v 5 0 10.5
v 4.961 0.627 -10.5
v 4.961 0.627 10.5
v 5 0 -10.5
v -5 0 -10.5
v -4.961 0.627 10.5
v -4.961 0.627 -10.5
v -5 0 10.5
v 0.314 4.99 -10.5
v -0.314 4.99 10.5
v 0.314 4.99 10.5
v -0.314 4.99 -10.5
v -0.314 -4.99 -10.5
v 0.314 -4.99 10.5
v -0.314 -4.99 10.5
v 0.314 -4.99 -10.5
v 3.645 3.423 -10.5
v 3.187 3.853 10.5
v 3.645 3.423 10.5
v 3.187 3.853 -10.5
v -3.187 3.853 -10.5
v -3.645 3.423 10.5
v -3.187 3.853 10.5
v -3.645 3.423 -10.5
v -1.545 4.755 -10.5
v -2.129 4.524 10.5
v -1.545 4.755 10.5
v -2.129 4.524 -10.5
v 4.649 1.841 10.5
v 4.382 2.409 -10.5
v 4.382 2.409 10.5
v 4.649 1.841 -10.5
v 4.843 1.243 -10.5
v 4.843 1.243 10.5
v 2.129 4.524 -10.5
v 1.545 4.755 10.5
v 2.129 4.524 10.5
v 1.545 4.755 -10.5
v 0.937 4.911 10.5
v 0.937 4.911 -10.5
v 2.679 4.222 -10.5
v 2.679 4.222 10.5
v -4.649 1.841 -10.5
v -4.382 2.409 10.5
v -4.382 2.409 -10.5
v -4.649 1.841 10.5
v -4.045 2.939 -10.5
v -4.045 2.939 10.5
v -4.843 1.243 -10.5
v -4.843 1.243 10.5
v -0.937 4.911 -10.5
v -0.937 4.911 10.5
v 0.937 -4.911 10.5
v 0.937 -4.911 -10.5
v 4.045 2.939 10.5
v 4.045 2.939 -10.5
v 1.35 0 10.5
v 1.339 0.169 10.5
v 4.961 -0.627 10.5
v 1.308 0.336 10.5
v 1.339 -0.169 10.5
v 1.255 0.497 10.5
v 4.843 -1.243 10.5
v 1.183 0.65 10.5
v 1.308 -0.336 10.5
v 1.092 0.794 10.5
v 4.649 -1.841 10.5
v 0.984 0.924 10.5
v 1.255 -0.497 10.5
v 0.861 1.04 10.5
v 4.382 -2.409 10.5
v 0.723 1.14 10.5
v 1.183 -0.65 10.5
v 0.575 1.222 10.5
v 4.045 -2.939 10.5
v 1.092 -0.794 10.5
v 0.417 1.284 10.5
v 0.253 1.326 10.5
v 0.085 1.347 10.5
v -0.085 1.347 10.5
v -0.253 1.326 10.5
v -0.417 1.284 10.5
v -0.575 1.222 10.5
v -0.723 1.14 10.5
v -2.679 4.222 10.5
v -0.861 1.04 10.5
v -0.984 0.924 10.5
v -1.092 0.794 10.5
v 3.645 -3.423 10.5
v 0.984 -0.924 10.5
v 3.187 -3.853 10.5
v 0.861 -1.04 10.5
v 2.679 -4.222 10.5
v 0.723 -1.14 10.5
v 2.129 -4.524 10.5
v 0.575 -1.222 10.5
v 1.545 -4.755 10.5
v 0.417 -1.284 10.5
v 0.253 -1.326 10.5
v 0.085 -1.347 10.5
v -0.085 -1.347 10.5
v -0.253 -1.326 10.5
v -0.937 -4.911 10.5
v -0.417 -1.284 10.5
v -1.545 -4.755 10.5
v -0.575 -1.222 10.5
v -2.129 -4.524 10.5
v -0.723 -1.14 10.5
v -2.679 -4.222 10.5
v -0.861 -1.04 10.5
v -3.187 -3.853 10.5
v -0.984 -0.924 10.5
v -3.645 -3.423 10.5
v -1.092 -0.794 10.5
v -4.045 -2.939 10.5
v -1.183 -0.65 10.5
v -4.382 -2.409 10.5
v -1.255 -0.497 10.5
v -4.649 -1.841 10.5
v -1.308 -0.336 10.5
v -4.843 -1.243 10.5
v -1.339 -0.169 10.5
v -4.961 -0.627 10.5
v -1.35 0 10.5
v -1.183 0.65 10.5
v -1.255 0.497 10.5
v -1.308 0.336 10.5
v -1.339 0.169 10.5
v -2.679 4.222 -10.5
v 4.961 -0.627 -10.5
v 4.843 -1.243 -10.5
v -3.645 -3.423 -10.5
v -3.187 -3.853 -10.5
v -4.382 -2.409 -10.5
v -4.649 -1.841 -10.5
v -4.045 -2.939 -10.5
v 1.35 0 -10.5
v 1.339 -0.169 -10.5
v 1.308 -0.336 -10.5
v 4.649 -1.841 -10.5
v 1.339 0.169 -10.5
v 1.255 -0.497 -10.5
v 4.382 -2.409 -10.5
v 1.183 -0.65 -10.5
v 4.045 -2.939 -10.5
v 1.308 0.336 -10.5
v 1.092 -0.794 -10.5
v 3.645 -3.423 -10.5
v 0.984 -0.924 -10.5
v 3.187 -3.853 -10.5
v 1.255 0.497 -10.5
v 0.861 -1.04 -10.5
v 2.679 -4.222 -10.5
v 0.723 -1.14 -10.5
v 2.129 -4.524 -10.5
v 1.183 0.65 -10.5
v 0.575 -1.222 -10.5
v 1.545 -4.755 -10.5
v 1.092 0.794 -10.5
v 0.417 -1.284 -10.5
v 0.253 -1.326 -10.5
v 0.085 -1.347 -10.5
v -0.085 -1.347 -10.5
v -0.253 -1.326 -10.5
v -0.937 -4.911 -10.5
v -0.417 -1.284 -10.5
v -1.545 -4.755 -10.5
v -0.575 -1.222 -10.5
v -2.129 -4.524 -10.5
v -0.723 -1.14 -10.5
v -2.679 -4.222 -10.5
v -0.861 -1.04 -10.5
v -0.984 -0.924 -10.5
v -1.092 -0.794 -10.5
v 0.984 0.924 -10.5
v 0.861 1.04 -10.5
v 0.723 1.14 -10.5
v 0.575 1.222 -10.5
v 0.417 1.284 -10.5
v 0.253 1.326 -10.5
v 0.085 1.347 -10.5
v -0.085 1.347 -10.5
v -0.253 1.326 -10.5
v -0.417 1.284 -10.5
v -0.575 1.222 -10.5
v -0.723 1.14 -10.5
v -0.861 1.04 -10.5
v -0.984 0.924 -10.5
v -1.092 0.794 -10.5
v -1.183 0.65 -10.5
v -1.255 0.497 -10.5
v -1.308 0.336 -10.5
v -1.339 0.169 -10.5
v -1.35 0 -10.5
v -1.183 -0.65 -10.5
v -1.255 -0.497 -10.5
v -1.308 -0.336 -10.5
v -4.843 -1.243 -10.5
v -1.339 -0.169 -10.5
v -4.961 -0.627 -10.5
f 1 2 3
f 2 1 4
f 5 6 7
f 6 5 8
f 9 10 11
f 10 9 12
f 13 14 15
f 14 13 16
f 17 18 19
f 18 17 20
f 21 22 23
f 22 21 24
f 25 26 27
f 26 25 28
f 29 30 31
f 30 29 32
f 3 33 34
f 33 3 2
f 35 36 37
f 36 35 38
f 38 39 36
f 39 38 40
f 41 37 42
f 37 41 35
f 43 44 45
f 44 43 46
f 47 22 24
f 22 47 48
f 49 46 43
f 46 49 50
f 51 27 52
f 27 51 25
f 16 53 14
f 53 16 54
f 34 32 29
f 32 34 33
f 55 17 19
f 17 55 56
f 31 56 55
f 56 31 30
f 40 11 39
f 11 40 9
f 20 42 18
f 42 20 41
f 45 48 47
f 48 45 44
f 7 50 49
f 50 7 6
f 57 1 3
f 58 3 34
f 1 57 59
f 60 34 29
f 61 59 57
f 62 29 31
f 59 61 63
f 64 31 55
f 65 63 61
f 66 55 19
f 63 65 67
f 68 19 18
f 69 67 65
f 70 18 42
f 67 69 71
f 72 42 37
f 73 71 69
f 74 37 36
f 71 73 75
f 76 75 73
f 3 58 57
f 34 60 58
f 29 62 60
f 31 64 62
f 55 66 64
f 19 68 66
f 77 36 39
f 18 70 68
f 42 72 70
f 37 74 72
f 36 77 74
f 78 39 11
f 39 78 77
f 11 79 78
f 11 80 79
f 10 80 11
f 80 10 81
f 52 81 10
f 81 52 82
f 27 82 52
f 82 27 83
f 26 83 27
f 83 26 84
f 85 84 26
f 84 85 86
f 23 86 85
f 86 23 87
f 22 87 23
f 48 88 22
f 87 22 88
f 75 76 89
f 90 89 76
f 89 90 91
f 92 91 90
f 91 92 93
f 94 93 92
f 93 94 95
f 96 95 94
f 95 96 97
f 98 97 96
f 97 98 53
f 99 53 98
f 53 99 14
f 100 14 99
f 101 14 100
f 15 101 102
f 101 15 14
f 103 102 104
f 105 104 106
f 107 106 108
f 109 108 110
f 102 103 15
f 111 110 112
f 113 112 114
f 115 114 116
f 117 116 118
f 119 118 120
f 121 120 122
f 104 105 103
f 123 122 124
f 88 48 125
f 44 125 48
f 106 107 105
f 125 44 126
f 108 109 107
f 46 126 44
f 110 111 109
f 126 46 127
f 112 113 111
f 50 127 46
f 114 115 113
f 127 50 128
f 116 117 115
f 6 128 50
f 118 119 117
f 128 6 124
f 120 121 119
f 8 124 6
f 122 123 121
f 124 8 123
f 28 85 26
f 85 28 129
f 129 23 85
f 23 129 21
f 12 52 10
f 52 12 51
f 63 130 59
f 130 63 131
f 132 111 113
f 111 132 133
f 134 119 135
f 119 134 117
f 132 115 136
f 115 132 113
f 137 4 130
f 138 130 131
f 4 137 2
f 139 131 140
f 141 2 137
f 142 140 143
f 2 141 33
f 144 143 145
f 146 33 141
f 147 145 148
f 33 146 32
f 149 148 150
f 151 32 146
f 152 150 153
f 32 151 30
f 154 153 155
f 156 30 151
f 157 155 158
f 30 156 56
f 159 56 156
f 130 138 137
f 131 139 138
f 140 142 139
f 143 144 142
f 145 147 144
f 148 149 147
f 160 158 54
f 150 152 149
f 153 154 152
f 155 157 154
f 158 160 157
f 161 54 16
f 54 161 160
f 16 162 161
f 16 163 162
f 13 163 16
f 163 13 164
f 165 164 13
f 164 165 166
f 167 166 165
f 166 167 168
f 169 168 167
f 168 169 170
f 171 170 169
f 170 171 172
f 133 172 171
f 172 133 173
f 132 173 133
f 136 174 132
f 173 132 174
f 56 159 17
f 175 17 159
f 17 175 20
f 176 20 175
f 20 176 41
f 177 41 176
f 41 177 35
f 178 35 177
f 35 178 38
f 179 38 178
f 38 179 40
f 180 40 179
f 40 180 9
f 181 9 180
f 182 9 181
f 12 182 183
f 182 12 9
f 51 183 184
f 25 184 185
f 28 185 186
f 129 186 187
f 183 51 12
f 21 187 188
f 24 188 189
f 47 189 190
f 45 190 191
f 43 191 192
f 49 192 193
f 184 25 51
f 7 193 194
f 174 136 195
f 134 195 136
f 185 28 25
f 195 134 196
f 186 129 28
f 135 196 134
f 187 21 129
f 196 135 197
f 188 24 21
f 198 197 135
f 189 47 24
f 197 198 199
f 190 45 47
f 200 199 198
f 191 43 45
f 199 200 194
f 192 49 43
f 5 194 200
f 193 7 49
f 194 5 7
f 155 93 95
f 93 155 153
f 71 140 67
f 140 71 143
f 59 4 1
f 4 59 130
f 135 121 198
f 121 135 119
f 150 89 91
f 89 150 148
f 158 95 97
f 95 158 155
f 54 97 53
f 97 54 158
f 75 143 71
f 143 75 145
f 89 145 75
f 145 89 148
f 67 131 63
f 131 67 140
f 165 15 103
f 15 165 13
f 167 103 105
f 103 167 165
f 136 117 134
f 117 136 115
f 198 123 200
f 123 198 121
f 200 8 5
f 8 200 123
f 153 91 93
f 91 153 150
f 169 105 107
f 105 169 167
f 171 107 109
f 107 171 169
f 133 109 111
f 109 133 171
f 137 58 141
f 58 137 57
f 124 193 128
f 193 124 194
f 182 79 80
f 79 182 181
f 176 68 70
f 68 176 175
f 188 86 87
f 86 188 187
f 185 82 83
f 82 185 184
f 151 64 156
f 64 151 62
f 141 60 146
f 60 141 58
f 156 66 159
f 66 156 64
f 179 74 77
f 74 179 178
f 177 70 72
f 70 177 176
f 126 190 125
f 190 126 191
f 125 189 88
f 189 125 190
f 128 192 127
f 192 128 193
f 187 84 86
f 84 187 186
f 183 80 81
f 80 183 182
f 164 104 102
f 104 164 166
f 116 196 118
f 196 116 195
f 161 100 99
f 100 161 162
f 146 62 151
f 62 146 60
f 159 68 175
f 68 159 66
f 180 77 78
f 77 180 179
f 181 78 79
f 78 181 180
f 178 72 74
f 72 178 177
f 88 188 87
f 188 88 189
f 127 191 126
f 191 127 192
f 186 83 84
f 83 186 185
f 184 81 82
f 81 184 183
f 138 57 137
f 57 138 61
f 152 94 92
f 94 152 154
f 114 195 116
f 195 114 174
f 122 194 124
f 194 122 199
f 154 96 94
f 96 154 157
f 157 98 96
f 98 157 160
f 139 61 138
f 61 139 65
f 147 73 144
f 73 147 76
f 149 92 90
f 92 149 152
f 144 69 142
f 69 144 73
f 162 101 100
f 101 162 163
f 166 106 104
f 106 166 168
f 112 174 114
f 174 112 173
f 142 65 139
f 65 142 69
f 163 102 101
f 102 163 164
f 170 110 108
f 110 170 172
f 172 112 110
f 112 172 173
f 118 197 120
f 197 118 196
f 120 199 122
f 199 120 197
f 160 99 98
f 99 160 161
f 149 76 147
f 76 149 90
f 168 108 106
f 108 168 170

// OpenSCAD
$fn = 50;


difference() {
	union() {
		translate(v = [0, 0, -10.5000000000]) {
			cylinder(h = 21, r = 5.0000000000);
		}
	}
	union() {
		translate(v = [0, 0, -100.0000000000]) {
			cylinder(h = 200, r = 1.3500000000);
		}
	}
}
